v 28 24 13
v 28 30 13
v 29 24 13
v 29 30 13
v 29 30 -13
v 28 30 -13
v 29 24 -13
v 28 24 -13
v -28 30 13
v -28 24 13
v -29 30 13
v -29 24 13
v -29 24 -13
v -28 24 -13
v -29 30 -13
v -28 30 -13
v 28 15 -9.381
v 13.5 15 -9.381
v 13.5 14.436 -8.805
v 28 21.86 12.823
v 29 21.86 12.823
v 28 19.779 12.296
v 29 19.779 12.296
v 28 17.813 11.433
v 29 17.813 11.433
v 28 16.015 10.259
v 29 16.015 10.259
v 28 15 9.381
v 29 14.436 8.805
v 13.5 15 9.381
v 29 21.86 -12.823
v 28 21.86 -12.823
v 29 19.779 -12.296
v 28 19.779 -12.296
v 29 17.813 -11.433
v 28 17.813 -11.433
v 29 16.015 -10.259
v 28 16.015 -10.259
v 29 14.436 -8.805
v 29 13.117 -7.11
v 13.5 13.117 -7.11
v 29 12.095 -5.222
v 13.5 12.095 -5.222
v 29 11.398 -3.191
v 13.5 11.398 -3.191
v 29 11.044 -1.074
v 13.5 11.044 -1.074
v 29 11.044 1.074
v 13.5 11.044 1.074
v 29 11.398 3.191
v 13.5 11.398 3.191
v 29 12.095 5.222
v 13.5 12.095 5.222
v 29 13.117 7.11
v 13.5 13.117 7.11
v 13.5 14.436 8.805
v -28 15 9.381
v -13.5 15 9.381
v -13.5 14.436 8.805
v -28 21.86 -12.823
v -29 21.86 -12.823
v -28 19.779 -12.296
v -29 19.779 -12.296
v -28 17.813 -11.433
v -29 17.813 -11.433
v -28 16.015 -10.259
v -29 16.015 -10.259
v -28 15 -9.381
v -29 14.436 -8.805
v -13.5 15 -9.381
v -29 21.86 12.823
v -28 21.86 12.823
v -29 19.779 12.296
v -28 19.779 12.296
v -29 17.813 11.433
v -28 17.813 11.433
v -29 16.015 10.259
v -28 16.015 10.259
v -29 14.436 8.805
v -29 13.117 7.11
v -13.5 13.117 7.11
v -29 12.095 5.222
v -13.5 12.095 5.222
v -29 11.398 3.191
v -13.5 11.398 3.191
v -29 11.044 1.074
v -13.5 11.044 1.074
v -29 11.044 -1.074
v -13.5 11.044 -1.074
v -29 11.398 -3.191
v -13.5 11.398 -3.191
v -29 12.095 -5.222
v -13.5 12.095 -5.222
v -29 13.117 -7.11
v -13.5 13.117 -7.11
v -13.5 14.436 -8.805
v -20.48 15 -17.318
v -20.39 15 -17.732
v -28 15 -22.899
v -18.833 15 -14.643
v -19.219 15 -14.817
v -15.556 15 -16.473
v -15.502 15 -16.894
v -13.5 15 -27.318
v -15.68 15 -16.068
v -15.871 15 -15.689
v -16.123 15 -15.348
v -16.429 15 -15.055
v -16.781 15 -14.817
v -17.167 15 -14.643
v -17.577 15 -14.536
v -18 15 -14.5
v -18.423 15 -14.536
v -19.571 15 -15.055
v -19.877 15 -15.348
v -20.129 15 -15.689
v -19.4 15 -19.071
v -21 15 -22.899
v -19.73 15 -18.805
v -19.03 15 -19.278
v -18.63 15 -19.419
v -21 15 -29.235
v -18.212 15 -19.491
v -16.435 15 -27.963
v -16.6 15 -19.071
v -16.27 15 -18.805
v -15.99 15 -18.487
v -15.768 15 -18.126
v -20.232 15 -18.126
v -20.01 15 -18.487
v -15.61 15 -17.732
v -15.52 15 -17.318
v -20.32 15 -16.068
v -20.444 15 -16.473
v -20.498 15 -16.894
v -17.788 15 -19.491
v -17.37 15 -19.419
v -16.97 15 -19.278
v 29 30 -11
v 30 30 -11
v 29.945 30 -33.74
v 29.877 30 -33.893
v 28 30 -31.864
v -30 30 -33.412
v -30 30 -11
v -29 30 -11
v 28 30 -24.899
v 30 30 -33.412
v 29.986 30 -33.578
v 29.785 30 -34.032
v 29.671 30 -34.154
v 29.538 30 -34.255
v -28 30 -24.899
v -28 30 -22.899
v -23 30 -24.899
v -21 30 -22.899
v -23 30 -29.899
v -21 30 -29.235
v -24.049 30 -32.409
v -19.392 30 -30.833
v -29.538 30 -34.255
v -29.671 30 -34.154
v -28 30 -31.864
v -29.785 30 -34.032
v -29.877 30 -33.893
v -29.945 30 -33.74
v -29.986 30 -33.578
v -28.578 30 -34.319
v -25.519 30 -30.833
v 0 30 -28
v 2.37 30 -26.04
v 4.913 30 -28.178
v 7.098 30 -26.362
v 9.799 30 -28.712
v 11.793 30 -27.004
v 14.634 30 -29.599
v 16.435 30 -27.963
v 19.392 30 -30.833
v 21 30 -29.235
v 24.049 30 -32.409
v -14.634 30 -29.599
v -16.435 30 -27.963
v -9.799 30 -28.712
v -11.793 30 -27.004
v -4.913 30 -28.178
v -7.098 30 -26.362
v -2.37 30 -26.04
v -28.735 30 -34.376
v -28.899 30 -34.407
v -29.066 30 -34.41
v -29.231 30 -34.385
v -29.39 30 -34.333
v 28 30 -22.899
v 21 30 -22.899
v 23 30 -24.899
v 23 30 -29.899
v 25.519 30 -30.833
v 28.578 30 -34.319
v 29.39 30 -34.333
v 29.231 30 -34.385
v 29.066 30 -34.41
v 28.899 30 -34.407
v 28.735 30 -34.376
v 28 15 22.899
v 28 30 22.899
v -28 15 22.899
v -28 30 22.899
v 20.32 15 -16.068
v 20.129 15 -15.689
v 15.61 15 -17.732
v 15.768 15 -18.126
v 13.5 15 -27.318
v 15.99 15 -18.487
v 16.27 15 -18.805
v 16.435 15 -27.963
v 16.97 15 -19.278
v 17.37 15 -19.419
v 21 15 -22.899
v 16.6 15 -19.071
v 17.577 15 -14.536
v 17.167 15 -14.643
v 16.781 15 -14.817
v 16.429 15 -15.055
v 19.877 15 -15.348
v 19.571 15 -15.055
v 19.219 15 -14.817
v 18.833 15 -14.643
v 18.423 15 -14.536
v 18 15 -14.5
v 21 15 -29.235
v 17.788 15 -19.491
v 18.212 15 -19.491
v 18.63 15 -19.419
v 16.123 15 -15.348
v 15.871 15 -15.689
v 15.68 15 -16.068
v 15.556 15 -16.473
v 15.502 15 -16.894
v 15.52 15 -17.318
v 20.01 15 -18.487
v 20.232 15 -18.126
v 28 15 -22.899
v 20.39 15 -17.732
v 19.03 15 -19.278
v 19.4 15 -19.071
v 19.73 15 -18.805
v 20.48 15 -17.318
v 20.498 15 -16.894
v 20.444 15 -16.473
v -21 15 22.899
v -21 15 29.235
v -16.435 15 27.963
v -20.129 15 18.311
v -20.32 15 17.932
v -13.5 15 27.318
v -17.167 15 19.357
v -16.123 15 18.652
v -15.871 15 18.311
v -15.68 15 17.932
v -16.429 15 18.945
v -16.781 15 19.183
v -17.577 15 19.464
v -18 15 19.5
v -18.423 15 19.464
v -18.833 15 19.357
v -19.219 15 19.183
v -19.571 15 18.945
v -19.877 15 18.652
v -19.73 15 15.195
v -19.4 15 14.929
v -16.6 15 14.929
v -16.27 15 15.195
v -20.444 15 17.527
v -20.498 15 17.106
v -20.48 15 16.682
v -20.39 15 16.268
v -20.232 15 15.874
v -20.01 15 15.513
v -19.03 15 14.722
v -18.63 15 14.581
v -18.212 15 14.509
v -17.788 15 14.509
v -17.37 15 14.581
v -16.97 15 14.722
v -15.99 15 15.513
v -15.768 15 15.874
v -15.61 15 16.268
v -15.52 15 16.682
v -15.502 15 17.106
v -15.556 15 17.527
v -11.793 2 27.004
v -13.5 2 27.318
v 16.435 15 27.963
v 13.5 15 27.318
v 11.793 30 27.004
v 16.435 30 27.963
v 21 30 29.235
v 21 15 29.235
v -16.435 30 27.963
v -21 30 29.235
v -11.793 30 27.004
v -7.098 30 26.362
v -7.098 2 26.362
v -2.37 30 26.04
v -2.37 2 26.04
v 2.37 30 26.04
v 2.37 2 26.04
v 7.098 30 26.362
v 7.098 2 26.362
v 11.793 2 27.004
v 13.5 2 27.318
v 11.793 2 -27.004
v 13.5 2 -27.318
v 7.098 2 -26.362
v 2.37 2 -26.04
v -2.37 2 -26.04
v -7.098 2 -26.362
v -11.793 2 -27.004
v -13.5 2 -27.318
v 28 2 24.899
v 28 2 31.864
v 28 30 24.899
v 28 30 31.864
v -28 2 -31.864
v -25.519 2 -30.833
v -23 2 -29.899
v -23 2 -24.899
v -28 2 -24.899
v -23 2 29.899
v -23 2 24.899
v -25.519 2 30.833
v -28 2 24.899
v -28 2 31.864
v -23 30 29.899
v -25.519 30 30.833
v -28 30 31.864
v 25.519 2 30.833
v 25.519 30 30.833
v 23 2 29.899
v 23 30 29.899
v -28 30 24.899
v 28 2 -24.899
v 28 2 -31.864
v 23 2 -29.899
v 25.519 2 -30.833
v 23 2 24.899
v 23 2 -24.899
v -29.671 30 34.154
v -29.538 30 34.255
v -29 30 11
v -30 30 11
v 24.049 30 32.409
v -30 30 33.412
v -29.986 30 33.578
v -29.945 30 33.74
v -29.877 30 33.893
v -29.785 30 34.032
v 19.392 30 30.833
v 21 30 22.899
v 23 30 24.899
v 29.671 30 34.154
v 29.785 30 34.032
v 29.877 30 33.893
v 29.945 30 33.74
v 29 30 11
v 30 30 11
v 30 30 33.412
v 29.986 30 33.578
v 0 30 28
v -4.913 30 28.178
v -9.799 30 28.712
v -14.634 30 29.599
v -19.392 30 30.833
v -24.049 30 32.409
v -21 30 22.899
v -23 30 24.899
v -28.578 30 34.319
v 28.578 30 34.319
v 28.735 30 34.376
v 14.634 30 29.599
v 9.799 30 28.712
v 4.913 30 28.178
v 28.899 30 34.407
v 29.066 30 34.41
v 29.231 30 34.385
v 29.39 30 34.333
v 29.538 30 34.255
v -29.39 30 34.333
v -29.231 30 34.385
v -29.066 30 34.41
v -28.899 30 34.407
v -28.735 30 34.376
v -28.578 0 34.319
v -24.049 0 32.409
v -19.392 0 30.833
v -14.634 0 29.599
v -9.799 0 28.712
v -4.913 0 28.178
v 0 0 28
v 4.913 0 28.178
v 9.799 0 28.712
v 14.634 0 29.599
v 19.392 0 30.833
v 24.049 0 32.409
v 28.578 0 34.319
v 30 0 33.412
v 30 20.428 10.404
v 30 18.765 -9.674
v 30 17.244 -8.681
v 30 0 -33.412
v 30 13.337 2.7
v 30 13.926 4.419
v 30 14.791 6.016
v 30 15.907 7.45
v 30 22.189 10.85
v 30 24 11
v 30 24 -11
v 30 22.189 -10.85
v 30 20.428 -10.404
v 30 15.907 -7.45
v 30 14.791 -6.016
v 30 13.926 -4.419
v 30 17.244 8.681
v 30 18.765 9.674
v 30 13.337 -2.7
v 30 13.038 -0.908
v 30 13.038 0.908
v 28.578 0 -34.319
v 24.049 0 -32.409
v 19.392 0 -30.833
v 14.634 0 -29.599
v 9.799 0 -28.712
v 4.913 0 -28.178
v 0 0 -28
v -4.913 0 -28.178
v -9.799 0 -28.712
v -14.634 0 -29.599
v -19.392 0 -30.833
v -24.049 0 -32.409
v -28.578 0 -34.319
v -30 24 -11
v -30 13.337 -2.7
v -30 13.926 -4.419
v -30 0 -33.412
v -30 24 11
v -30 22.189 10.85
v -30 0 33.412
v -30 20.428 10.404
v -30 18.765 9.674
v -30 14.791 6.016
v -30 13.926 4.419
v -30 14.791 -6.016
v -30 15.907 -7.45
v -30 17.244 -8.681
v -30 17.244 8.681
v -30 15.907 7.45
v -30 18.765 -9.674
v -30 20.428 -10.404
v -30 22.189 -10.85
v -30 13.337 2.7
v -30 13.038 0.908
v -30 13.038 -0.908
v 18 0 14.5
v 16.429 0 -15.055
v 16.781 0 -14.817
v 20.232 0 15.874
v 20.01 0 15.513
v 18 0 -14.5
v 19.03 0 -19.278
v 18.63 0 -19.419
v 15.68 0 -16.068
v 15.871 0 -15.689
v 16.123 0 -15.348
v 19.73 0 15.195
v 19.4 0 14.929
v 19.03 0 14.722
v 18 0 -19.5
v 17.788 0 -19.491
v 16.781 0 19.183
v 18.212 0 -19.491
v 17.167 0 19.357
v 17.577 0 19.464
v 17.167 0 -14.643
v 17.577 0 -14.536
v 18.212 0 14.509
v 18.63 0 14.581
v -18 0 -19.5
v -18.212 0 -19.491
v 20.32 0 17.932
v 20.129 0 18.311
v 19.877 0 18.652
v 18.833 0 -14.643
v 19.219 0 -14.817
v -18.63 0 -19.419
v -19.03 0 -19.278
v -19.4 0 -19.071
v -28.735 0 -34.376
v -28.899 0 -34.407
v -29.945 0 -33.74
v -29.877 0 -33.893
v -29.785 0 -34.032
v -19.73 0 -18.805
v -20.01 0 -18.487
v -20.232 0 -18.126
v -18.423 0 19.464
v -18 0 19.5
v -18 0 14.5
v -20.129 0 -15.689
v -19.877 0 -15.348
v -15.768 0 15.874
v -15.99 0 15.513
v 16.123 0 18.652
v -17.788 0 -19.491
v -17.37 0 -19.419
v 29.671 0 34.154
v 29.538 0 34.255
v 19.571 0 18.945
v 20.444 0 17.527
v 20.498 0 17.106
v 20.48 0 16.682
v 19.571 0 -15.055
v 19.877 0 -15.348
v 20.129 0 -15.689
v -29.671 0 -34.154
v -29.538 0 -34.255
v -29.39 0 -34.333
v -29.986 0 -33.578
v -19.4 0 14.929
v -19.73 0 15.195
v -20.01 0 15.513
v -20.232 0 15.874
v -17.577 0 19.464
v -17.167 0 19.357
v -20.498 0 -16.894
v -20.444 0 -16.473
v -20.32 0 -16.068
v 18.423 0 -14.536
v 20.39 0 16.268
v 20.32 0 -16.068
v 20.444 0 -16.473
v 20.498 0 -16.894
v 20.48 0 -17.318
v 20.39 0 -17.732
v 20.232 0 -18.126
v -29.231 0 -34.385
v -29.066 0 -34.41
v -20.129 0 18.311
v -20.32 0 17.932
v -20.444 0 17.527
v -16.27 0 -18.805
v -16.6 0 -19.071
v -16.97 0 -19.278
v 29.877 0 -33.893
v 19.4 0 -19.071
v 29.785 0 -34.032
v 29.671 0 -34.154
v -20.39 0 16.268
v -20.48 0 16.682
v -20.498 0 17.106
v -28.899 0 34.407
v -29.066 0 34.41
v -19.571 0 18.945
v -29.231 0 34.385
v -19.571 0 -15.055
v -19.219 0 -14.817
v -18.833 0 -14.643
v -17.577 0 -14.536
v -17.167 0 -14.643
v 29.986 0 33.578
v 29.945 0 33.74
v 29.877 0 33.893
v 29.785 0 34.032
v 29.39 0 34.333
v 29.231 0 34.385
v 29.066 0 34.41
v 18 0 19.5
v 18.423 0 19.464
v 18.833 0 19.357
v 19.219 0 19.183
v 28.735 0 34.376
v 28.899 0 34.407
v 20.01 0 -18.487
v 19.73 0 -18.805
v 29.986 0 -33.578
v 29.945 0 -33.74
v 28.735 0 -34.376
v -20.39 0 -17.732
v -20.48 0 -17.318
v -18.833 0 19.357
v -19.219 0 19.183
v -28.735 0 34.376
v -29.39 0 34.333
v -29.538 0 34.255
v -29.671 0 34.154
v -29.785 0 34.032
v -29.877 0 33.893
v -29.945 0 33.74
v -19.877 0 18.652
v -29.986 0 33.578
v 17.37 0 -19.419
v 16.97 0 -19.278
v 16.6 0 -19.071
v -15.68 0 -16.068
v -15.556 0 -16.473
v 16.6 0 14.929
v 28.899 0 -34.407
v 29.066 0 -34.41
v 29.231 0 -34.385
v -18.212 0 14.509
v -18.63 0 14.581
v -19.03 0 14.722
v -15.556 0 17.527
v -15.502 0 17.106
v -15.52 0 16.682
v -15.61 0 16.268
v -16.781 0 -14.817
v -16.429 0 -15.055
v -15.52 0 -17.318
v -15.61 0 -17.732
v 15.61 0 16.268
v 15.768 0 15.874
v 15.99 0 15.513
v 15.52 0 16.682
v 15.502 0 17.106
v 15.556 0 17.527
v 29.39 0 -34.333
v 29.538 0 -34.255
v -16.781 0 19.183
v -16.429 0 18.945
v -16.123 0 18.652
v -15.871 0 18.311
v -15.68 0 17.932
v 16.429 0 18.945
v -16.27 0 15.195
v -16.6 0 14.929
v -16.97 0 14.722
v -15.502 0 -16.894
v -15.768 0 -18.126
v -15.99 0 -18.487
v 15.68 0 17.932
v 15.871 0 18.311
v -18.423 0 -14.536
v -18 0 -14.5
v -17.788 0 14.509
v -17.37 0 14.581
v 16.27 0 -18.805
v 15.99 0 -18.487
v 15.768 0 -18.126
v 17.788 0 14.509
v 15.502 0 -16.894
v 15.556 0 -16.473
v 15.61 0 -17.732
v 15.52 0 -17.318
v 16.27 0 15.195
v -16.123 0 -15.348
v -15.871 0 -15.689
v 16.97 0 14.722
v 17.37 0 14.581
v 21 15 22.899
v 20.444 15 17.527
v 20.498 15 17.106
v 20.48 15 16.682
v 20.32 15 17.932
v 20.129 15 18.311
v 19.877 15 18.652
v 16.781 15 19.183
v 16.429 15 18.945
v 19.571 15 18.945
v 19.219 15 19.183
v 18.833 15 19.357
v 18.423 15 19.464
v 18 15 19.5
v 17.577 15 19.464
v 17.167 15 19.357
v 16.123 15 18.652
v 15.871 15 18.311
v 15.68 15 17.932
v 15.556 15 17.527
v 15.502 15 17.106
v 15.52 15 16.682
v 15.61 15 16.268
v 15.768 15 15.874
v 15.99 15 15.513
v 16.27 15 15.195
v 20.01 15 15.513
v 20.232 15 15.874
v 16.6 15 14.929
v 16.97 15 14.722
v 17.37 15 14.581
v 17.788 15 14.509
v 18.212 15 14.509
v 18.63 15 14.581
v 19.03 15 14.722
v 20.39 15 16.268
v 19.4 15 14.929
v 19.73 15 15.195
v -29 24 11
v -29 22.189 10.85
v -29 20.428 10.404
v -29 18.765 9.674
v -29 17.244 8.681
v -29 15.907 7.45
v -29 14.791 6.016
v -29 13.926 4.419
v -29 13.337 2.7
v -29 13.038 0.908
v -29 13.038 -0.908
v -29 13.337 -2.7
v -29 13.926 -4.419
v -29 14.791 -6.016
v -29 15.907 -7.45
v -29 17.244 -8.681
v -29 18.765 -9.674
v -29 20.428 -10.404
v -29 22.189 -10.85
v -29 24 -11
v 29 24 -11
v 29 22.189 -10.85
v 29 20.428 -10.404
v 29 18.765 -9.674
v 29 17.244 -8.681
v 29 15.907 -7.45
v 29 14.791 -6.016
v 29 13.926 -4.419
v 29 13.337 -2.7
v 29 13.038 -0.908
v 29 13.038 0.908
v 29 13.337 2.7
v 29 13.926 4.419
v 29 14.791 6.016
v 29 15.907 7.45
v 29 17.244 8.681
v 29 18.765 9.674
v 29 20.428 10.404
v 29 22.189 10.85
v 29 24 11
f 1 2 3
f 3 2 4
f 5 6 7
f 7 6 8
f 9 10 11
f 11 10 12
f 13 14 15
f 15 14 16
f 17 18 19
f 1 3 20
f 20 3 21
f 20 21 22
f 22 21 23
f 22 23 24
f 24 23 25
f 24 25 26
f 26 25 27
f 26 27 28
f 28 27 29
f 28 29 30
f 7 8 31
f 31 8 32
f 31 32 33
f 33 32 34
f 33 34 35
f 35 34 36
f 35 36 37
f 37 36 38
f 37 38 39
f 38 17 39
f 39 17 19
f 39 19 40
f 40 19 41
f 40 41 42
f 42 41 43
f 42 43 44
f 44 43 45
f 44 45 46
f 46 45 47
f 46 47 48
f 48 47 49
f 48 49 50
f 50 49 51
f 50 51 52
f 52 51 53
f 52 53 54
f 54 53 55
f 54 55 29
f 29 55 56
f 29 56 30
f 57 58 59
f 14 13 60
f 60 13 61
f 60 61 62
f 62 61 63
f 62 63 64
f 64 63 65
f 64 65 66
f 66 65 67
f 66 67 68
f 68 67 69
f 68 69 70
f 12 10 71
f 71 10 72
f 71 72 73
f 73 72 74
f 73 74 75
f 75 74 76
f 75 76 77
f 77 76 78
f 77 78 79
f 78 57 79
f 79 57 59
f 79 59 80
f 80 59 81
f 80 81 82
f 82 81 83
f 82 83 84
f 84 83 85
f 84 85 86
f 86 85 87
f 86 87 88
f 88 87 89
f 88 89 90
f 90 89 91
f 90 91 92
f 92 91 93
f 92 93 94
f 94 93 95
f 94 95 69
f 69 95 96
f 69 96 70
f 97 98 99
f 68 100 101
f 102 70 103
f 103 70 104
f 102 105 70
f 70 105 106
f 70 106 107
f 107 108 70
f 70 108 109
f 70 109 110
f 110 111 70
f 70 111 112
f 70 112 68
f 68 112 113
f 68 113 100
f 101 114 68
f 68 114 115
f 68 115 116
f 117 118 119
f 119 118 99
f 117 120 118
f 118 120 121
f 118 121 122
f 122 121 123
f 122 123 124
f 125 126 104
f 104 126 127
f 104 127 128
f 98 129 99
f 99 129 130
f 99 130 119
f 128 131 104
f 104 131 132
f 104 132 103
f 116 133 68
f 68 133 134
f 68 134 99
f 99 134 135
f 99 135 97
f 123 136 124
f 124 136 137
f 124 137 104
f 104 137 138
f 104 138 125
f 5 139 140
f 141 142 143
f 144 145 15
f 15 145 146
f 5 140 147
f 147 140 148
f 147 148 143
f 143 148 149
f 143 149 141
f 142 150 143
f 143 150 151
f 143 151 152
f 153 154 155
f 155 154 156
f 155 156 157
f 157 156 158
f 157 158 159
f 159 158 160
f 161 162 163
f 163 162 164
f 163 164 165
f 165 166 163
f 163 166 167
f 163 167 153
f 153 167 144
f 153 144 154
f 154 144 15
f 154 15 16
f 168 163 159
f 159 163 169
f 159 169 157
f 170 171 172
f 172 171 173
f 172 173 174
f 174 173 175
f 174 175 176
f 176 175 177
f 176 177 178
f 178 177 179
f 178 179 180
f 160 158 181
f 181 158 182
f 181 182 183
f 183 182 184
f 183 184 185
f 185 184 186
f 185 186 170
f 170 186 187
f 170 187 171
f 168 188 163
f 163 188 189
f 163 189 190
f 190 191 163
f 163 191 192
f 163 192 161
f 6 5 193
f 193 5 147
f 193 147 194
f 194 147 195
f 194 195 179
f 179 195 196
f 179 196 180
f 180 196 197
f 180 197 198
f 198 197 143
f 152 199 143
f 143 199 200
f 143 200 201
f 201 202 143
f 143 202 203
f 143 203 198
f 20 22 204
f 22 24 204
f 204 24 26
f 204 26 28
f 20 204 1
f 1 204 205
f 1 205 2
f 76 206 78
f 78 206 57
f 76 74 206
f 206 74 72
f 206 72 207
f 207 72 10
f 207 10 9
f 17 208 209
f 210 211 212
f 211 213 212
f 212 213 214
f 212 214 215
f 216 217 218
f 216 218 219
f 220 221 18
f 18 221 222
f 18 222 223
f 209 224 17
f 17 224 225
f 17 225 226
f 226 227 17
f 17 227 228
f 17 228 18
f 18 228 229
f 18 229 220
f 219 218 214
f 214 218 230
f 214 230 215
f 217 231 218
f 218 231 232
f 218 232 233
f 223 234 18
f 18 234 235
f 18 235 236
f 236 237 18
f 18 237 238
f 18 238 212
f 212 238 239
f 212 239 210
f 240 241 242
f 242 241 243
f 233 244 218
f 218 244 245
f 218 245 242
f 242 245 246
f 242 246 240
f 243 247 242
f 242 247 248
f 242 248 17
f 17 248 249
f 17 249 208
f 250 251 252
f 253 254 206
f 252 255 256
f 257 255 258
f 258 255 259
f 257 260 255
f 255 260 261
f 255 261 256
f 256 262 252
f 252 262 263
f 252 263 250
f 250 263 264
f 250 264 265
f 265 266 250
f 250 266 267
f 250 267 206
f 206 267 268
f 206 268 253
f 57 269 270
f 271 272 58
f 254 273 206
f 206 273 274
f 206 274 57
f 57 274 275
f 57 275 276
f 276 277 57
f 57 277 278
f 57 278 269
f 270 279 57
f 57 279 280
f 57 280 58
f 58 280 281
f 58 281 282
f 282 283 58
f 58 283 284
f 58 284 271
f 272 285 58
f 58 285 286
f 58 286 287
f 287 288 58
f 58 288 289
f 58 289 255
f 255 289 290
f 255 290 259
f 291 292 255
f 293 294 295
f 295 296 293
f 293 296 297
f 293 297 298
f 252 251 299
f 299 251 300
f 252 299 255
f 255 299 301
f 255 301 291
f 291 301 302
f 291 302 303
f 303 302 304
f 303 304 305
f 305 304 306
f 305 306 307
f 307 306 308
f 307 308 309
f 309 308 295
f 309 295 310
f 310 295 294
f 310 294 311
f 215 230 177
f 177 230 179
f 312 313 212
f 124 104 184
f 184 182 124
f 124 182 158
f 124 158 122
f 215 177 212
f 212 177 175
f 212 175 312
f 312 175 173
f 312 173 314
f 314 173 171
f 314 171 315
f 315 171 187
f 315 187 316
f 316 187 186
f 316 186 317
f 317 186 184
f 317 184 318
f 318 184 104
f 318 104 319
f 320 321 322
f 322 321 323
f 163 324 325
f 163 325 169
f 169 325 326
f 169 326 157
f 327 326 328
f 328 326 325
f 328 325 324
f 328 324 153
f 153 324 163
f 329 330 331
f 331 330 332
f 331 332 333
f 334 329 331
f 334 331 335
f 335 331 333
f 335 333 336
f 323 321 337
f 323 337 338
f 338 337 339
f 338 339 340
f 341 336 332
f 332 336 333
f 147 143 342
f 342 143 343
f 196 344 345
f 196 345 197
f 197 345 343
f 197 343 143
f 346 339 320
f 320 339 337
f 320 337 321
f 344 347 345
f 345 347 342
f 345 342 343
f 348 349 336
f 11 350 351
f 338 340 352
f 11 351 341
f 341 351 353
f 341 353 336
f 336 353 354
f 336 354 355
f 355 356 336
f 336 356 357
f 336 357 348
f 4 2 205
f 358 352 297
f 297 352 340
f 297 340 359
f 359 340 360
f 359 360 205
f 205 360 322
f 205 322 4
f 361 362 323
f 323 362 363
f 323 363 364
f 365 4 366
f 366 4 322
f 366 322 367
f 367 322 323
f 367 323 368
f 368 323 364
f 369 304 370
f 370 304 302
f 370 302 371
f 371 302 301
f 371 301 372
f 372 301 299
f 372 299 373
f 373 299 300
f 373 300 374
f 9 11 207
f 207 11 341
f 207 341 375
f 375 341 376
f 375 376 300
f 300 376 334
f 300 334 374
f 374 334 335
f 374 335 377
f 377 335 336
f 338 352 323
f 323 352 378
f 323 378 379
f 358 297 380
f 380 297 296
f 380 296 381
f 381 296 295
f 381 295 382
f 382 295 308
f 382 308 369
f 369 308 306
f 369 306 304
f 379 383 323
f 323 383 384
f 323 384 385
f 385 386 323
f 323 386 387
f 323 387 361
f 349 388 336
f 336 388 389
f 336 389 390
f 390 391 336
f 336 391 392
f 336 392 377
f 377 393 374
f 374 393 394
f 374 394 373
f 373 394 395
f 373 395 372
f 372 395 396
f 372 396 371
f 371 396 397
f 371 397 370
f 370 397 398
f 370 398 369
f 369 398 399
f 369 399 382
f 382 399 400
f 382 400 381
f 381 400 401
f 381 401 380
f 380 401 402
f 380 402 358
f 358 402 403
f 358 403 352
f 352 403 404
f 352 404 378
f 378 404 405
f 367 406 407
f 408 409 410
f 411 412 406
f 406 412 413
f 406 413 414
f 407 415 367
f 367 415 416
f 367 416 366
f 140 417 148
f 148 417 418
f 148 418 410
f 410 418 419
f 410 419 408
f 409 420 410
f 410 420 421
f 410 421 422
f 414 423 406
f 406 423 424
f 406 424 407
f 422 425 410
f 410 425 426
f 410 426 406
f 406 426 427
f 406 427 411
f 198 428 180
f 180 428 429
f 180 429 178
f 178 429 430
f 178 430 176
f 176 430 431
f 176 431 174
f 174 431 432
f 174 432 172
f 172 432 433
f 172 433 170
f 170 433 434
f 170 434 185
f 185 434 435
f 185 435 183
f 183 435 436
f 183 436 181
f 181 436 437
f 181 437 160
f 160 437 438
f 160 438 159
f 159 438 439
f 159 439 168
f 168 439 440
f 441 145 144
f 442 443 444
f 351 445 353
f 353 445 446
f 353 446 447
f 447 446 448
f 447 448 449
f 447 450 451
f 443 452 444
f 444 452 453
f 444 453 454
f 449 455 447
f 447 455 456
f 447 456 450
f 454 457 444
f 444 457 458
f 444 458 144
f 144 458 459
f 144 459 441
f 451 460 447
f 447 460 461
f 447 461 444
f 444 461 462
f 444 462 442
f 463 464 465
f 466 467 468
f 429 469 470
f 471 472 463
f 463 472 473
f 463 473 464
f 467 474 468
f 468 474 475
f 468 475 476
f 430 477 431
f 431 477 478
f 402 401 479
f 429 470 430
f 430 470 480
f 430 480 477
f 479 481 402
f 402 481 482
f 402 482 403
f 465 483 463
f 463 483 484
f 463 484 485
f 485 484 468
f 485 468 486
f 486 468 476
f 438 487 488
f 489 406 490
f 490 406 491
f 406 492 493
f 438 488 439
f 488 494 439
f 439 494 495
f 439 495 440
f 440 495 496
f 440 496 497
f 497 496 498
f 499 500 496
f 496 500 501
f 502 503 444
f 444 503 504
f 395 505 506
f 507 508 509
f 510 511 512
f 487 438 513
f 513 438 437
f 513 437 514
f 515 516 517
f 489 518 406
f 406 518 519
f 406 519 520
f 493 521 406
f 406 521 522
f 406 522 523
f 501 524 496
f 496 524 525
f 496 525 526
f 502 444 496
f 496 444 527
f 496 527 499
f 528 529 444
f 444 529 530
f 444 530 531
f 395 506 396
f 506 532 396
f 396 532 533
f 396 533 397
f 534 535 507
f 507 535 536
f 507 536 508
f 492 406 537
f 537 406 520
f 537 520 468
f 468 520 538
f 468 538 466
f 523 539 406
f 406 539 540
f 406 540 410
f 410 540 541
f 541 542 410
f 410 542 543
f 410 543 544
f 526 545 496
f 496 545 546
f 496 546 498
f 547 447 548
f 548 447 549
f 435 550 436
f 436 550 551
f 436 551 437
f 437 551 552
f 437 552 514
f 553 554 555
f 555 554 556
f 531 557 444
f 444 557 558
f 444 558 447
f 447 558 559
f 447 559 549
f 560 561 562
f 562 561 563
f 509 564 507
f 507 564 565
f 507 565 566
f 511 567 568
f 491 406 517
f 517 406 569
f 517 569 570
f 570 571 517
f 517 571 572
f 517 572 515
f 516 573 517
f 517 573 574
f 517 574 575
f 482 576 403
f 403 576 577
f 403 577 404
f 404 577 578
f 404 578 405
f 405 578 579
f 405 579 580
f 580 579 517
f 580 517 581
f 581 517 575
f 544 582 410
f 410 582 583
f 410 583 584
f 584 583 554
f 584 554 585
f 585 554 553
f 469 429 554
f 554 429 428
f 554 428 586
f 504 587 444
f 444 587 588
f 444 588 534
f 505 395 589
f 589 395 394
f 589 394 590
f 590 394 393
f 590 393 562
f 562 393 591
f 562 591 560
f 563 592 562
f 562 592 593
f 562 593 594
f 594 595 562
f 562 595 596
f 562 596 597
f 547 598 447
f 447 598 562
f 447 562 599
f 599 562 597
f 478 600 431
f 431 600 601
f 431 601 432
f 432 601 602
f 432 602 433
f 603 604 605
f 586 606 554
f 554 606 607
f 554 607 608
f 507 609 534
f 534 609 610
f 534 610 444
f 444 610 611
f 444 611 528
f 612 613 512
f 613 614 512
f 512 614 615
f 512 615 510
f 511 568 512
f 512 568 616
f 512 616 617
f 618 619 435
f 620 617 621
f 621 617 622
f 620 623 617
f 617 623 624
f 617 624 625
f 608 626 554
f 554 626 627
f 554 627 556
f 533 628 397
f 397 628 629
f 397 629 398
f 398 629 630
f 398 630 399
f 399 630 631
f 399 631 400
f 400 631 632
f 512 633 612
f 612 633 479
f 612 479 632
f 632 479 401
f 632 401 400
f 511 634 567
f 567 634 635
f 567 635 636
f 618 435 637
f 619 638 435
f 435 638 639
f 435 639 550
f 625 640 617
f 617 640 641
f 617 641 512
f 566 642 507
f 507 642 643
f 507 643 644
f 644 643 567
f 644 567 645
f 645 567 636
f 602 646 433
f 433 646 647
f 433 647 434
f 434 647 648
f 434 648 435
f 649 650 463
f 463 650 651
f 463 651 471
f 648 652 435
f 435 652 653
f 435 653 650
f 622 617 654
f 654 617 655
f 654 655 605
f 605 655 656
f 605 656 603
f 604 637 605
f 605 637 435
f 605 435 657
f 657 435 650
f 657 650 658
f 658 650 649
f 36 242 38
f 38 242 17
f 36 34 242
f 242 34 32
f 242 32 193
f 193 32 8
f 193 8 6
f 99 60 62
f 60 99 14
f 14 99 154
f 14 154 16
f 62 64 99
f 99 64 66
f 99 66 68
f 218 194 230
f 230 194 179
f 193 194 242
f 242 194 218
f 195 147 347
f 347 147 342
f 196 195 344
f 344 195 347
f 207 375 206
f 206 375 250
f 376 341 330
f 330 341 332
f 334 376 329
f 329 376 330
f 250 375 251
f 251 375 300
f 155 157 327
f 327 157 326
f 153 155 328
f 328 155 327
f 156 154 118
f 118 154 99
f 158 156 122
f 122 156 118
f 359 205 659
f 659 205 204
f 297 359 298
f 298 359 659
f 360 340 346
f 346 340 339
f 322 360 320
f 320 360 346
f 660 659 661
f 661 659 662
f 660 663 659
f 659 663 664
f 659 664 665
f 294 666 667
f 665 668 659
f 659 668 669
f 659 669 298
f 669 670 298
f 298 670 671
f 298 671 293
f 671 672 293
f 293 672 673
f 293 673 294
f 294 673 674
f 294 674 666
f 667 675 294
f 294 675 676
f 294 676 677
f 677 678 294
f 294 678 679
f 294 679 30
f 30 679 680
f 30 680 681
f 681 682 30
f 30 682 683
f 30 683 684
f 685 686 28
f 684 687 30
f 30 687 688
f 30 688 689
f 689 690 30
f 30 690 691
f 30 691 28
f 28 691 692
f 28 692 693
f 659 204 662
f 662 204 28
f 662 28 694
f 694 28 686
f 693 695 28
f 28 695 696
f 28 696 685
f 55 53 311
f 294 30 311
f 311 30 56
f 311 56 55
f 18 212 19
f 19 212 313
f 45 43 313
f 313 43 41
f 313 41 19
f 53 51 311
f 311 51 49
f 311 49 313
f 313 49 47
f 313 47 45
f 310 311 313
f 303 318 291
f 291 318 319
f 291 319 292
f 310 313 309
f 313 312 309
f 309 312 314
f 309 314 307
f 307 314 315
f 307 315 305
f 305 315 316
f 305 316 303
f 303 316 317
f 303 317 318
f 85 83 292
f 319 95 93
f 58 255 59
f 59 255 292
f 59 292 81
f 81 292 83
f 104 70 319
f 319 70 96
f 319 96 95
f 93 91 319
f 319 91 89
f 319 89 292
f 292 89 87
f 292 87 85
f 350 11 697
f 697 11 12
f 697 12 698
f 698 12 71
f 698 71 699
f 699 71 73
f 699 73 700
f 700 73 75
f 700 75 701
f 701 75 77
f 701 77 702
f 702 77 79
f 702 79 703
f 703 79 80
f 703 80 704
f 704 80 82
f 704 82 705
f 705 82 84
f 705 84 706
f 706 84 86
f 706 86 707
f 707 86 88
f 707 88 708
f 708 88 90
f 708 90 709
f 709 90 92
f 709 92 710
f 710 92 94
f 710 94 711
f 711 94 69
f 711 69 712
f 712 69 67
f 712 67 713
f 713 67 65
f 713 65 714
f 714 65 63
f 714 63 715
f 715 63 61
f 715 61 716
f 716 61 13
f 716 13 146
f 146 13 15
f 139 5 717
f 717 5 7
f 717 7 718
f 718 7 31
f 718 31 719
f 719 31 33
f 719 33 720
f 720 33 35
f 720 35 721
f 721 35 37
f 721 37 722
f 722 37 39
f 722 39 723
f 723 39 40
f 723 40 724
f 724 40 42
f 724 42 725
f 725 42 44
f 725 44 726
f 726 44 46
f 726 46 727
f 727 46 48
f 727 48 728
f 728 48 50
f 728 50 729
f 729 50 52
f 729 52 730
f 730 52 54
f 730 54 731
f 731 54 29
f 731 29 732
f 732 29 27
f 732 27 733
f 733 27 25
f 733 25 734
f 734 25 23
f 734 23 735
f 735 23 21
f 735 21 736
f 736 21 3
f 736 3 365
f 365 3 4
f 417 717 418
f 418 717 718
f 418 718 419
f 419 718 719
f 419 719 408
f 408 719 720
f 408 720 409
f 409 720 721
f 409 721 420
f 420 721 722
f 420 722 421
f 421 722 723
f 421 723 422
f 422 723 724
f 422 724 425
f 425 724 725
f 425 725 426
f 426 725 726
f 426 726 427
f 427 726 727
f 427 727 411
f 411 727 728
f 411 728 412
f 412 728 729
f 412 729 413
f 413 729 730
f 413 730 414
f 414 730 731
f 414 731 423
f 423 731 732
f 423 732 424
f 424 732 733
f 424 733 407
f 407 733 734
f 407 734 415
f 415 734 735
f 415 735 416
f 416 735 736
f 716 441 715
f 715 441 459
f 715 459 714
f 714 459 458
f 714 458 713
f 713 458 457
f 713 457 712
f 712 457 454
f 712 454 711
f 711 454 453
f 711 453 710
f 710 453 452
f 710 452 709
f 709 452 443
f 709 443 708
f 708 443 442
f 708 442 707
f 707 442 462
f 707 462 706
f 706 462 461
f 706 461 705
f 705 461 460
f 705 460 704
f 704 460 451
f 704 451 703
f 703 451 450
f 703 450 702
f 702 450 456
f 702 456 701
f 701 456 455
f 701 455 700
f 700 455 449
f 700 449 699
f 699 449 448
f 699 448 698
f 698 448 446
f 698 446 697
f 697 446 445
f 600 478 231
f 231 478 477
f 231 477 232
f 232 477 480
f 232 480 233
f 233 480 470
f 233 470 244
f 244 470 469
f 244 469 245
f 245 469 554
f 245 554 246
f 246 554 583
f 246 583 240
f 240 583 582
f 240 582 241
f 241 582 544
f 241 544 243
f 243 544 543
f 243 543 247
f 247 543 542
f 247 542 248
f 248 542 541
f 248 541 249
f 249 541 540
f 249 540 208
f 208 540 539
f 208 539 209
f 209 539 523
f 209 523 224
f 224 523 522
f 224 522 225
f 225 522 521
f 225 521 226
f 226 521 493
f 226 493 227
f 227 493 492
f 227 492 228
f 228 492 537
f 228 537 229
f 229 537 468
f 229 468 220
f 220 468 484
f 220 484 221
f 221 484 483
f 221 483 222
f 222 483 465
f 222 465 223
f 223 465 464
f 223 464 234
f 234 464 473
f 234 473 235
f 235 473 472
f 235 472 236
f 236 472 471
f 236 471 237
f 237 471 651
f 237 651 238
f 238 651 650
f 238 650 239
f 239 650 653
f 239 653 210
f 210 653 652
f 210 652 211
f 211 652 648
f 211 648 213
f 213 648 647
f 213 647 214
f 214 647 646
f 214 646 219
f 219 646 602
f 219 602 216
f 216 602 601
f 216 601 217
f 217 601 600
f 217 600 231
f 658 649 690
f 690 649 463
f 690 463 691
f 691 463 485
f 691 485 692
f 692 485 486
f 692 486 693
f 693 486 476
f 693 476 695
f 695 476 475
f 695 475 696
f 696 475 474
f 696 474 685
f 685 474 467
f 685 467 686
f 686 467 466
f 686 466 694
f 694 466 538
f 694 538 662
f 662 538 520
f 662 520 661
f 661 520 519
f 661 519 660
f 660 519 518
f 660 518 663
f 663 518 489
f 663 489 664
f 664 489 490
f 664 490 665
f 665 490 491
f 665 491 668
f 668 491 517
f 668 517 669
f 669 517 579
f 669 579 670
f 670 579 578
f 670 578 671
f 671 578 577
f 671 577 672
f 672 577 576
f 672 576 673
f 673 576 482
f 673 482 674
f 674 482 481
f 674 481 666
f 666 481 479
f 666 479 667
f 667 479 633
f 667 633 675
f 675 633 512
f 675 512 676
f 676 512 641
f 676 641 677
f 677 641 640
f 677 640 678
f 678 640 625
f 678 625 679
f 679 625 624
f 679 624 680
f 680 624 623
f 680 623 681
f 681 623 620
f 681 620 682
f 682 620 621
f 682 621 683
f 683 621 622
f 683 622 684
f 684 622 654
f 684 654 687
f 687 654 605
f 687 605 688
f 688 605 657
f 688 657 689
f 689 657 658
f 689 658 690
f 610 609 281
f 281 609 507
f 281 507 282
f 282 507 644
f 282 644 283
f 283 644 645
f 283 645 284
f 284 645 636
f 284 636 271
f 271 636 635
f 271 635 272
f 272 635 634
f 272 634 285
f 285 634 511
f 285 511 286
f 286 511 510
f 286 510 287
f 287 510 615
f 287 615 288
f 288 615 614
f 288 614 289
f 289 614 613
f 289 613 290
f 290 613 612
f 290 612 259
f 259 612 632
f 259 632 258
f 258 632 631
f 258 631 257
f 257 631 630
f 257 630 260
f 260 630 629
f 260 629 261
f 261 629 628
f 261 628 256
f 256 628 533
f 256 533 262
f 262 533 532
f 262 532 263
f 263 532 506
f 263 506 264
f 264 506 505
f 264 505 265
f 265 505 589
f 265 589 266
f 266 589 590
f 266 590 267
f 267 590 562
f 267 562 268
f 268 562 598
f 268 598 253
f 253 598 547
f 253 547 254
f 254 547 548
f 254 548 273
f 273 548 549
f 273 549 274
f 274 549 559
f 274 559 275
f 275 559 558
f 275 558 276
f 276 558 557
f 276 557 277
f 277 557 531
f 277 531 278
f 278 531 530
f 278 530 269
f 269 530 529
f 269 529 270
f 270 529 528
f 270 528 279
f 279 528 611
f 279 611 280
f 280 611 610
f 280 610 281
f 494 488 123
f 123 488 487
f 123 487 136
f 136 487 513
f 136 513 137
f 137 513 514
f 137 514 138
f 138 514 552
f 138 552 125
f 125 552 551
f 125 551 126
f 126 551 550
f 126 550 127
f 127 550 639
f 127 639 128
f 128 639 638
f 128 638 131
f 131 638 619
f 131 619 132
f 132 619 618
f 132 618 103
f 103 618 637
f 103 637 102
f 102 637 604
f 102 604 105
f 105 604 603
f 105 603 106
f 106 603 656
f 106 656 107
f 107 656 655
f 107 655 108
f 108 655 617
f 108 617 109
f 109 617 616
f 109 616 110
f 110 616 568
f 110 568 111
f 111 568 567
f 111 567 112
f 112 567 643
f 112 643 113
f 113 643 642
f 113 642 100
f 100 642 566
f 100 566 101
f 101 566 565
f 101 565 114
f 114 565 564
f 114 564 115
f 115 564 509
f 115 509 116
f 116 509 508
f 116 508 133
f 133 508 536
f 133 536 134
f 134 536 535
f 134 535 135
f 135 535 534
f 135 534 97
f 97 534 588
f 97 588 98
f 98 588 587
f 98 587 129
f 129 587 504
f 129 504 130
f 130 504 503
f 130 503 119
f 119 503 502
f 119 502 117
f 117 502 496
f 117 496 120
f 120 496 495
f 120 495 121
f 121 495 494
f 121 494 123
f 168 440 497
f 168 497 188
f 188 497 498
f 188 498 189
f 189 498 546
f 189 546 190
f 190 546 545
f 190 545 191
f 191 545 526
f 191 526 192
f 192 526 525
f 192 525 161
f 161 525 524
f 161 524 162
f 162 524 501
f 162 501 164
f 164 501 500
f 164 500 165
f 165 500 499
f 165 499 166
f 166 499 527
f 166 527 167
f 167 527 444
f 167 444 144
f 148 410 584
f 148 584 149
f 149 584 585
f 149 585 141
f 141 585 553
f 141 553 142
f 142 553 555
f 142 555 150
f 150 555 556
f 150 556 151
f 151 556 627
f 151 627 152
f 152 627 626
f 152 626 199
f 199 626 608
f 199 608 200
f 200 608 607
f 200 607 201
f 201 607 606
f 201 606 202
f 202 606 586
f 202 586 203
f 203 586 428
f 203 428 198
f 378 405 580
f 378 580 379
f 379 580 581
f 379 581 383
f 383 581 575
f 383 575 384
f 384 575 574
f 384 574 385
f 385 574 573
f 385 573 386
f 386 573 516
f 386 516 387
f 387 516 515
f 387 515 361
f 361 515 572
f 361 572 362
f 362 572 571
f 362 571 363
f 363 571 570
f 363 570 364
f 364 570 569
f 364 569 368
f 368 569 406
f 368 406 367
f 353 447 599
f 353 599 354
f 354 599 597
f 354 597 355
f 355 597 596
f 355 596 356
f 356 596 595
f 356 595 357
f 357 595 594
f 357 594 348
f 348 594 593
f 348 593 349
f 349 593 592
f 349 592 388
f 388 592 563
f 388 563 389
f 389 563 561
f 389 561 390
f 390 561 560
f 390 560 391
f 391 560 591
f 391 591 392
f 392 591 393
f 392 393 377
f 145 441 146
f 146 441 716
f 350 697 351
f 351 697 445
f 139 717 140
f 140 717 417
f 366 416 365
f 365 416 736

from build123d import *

# Parameters (mm, degrees)
RESSALTO_EXTRUS_O2_DEPTH = 30
CASCA1_T                 = -2
RESSALTO_EXTRUS_O3_DEPTH = 28
RESSALTO_EXTRUS_O4_DEPTH = 13
CASCA2_START             = 2
CASCA2_DEPTH             = 13
RESSALTO_EXTRUS_O5_DEPTH = 13
RESSALTO_EXTRUS_O6_DEPTH = 13
CORTE_EXTRUS_O1_DEPTH    = 60
RESSALTO_EXTRUS_O7_DEPTH = 1
RESSALTO_EXTRUS_O8_START = -1
RESSALTO_EXTRUS_O8_DEPTH = 1
ESBO_O16_R               = 11
CORTE_EXTRUS_O2_DEPTH    = 60
ESBO_O17_R               = 2.5
CORTE_EXTRUS_O3_DEPTH    = 15
FILETE1_R                = 1
ESBO_O18_W               = 1
ESBO_O18_H               = 2
RESSALTO_EXTRUS_O9_DEPTH = 6


# Read off the part's stored shape, not the designer's step: Casca2, Ressalto-extrusão5, Ressalto-extrusão6
with BuildPart() as part:
    # Esboço2 → Ressalto-extrusão2 (new body)
    with BuildSketch(Plane(origin=(0, 0, 0), x_dir=(1, 0, 0), z_dir=(0, 1, 0))):
        with BuildLine():
            Line((-30, 35), (-30, -35))
            ThreePointArc((-30, -35), (0, -28), (30, -35))
            Line((30, -35), (30, 35))
            ThreePointArc((30, 35), (0, 28), (-30, 35))
        make_face()
    extrude(amount=RESSALTO_EXTRUS_O2_DEPTH)

    # Casca1
    casca1_openings = [part.faces().sort_by_distance(p)[0] for p in [
        (0, 30, 0),
    ]]
    offset(amount=CASCA1_T, openings=casca1_openings, kind=Kind.INTERSECTION)

    # Esboço5 → Ressalto-extrusão3 (add)
    with BuildSketch(Plane(origin=(0, 2, 0), x_dir=(1, 0, 0), z_dir=(0, 1, 0))):
        with BuildLine():
            Line((28, 22.89910018), (28, 24.89910018))
            Line((28, 24.89910018), (23, 24.89910018))
            Line((23, 24.89910018), (23, 29.89910018))
            ThreePointArc((23, 29.89910018), (22.002508446, 29.559318185), (21, 29.234636771))
            Line((21, 29.234636771), (21, 22.89910018))
            Line((21, 22.89910018), (28, 22.89910018))
        make_face()
        with BuildLine():
            ThreePointArc((-23, -29.89910018), (-22.002508446, -29.559318185), (-21, -29.234636771))
            Line((-21, -29.234636771), (-21, -22.89910018))
            Line((-21, -22.89910018), (-28, -22.89910018))
            Line((-28, -22.89910018), (-28, -24.89910018))
            Line((-28, -24.89910018), (-23, -24.89910018))
            Line((-23, -24.89910018), (-23, -29.89910018))
        make_face()
        with BuildLine():
            Line((-21, 22.89910018), (-21, 29.234636771))
            ThreePointArc((-21, 29.234636771), (-22.002508446, 29.559318185), (-23, 29.89910018))
            Line((-23, 29.89910018), (-23, 24.89910018))
            Line((-23, 24.89910018), (-28, 24.89910018))
            Line((-28, 24.89910018), (-28, 22.89910018))
            Line((-28, 22.89910018), (-21, 22.89910018))
        make_face()
        with BuildLine():
            Line((28, -24.89910018), (28, -22.89910018))
            Line((28, -22.89910018), (21, -22.89910018))
            Line((21, -22.89910018), (21, -29.234636771))
            ThreePointArc((21, -29.234636771), (22.002508446, -29.559318185), (23, -29.89910018))
            Line((23, -29.89910018), (23, -24.89910018))
            Line((23, -24.89910018), (28, -24.89910018))
        make_face()
    extrude(amount=RESSALTO_EXTRUS_O3_DEPTH)

    # Esboço6 → Ressalto-extrusão4 (add)
    with BuildSketch(Plane(origin=(0, 2, 0), x_dir=(1, 0, 0), z_dir=(0, 1, 0))):
        with BuildLine():
            Line((-15.5, 27.743110585), (-15.5, -27.743110585))
            ThreePointArc((-15.5, -27.743110585), (0, -26), (15.5, -27.743110585))
            Line((15.5, -27.743110585), (15.5, 27.743110585))
            ThreePointArc((15.5, 27.743110585), (0, 26), (-15.5, 27.743110585))
        make_face()
    extrude(amount=RESSALTO_EXTRUS_O4_DEPTH)

    # Casca2 outline → Casca2 (cut)
    with BuildSketch(Plane(origin=(0, 0, 0), x_dir=(1, 0, 0), z_dir=(0, 1, 0)).offset(CASCA2_START)):
        with BuildLine():
            Line((-13.5, 27.318233549), (-13.5, -27.318233549))
            ThreePointArc((-13.5, -27.318233549), (0, -26), (13.5, -27.318233549))
            Line((13.5, -27.318233549), (13.5, 27.318233549))
            ThreePointArc((13.5, 27.318233549), (0, 26), (-13.5, 27.318233549))
        make_face()
    extrude(amount=CASCA2_DEPTH, mode=Mode.SUBTRACT)

    # Ressalto-extrusão5 outline → Ressalto-extrusão5 (add)
    with BuildSketch(Plane(origin=(0, 2, 0), x_dir=(1, 0, 0), z_dir=(0, 1, 0))):
        with BuildLine():
            Line((15.5, 27.743110585), (15.5, -27.743110585))
            ThreePointArc((15.5, -27.743110585), (18.265230976, -28.432709484), (21, -29.234636771))
            Line((21, -29.234636771), (21, -22.89910018))
            Line((21, -22.89910018), (28, -22.89910018))
            Line((28, -22.89910018), (28, 22.89910018))
            Line((28, 22.89910018), (21, 22.89910018))
            Line((21, 22.89910018), (21, 29.234636771))
            ThreePointArc((21, 29.234636771), (18.265230976, 28.432709484), (15.5, 27.743110585))
        make_face()
    extrude(amount=RESSALTO_EXTRUS_O5_DEPTH)

    # Ressalto-extrusão6 outline → Ressalto-extrusão6 (add)
    with BuildSketch(Plane(origin=(0, 2, 0), x_dir=(1, 0, 0), z_dir=(0, 1, 0))):
        with BuildLine():
            Line((-21, -22.89910018), (-21, -29.234636771))
            ThreePointArc((-21, -29.234636771), (-18.265230976, -28.432709484), (-15.5, -27.743110585))
            Line((-15.5, -27.743110585), (-15.5, 27.743110585))
            ThreePointArc((-15.5, 27.743110585), (-18.265230976, 28.432709484), (-21, 29.234636771))
            Line((-21, 29.234636771), (-21, 22.89910018))
            Line((-21, 22.89910018), (-28, 22.89910018))
            Line((-28, 22.89910018), (-28, -22.89910018))
            Line((-28, -22.89910018), (-21, -22.89910018))
        make_face()
    extrude(amount=RESSALTO_EXTRUS_O6_DEPTH)

    # Esboço9 → Corte-extrusão1 (cut)
    with BuildSketch(Plane.ZY.offset(30)):
        with BuildLine():
            ThreePointArc((-11.532562595, 30), (-12.62781283, 27.088420816), (-13, 24))
            ThreePointArc((-13, 24), (0, 11), (13, 24))
            ThreePointArc((13, 24), (12.62781283, 27.088420816), (11.532562595, 30))
            Line((11.532562595, 30), (-11.532562595, 30))
        make_face()
        with BuildLine():
            ThreePointArc((11.532562595, 30), (0, 37), (-11.532562595, 30))
            Line((-11.532562595, 30), (11.532562595, 30))
        make_face()
        with BuildLine():
            Line((-13, 44), (-13, 30))
            Line((-13, 30), (-11.532562595, 30))
            ThreePointArc((-11.532562595, 30), (0, 37), (11.532562595, 30))
            Line((11.532562595, 30), (13, 30))
            Line((13, 30), (13, 44))
            Line((13, 44), (-13, 44))
        make_face()
        with BuildLine():
            ThreePointArc((11.532562595, 30), (12.62781283, 27.088420816), (13, 24))
            Line((13, 24), (13, 30))
            Line((13, 30), (11.532562595, 30))
        make_face()
        with BuildLine():
            Line((-13, 30), (-13, 24))
            ThreePointArc((-13, 24), (-12.62781283, 27.088420816), (-11.532562595, 30))
            Line((-11.532562595, 30), (-13, 30))
        make_face()
    extrude(amount=-CORTE_EXTRUS_O1_DEPTH, mode=Mode.SUBTRACT)

    # Esboço14 → Ressalto-extrusão7 (add)
    with BuildSketch(Plane.ZY.offset(30)):
        with BuildLine():
            Line((-13, 24), (13, 24))
            ThreePointArc((13, 24), (0, 11), (-13, 24))
        make_face()
    extrude(amount=-RESSALTO_EXTRUS_O7_DEPTH)

    # Esboço15 → Ressalto-extrusão8 (add)
    with BuildSketch(Plane(origin=(30, 0, 0), x_dir=(0, 0, -1), z_dir=(1, 0, 0)).offset(RESSALTO_EXTRUS_O8_START)):
        with BuildLine():
            Line((-13, 24), (13, 24))
            ThreePointArc((13, 24), (0, 11), (-13, 24))
        make_face()
    extrude(amount=RESSALTO_EXTRUS_O8_DEPTH)

    # Esboço16 → Corte-extrusão2 (cut)
    with BuildSketch(Plane.ZY.offset(30)):
        with Locations((0, 24)):
            Circle(ESBO_O16_R)
    extrude(amount=-CORTE_EXTRUS_O2_DEPTH, mode=Mode.SUBTRACT)

    # Esboço17 → Corte-extrusão3 (cut)
    with BuildSketch(Plane(origin=(0, 15, 0), x_dir=(1, 0, 0), z_dir=(0, 1, 0))):
        with Locations(Location((18, 17, 0), (0, 0, 270))):
            Circle(ESBO_O17_R)
        with Locations(Location((-18, -17, 0), (0, 0, 270))):
            Circle(ESBO_O17_R)
        with Locations(Location((18, -17, 0), (0, 0, 270))):
            Circle(ESBO_O17_R)
        with Locations(Location((-18, 17, 0), (0, 0, 270))):
            Circle(ESBO_O17_R)
    extrude(amount=-CORTE_EXTRUS_O3_DEPTH, mode=Mode.SUBTRACT)

    # Filete1
    filete1_edges = [part.edges().sort_by_distance(p)[0] for p in [
        (-30, 15, 35),
        (-30, 15, -35),
        (30, 15, -35),
        (30, 15, 35),
    ]]
    fillet(filete1_edges, radius=FILETE1_R)

    # Esboço18 → Ressalto-extrusão9 (add)
    with BuildSketch(Plane(origin=(0, 24, 0), x_dir=(1, 0, 0), z_dir=(0, 1, 0))):
        with Locations((-29.5, 12)):
            Rectangle(ESBO_O18_W, ESBO_O18_H)
        with Locations((-29.5, -12)):
            Rectangle(ESBO_O18_W, ESBO_O18_H)
        with Locations((29.5, 12)):
            Rectangle(ESBO_O18_W, ESBO_O18_H)
        with Locations((29.5, -12)):
            Rectangle(ESBO_O18_W, ESBO_O18_H)
    extrude(amount=RESSALTO_EXTRUS_O9_DEPTH)


solid = part.part
